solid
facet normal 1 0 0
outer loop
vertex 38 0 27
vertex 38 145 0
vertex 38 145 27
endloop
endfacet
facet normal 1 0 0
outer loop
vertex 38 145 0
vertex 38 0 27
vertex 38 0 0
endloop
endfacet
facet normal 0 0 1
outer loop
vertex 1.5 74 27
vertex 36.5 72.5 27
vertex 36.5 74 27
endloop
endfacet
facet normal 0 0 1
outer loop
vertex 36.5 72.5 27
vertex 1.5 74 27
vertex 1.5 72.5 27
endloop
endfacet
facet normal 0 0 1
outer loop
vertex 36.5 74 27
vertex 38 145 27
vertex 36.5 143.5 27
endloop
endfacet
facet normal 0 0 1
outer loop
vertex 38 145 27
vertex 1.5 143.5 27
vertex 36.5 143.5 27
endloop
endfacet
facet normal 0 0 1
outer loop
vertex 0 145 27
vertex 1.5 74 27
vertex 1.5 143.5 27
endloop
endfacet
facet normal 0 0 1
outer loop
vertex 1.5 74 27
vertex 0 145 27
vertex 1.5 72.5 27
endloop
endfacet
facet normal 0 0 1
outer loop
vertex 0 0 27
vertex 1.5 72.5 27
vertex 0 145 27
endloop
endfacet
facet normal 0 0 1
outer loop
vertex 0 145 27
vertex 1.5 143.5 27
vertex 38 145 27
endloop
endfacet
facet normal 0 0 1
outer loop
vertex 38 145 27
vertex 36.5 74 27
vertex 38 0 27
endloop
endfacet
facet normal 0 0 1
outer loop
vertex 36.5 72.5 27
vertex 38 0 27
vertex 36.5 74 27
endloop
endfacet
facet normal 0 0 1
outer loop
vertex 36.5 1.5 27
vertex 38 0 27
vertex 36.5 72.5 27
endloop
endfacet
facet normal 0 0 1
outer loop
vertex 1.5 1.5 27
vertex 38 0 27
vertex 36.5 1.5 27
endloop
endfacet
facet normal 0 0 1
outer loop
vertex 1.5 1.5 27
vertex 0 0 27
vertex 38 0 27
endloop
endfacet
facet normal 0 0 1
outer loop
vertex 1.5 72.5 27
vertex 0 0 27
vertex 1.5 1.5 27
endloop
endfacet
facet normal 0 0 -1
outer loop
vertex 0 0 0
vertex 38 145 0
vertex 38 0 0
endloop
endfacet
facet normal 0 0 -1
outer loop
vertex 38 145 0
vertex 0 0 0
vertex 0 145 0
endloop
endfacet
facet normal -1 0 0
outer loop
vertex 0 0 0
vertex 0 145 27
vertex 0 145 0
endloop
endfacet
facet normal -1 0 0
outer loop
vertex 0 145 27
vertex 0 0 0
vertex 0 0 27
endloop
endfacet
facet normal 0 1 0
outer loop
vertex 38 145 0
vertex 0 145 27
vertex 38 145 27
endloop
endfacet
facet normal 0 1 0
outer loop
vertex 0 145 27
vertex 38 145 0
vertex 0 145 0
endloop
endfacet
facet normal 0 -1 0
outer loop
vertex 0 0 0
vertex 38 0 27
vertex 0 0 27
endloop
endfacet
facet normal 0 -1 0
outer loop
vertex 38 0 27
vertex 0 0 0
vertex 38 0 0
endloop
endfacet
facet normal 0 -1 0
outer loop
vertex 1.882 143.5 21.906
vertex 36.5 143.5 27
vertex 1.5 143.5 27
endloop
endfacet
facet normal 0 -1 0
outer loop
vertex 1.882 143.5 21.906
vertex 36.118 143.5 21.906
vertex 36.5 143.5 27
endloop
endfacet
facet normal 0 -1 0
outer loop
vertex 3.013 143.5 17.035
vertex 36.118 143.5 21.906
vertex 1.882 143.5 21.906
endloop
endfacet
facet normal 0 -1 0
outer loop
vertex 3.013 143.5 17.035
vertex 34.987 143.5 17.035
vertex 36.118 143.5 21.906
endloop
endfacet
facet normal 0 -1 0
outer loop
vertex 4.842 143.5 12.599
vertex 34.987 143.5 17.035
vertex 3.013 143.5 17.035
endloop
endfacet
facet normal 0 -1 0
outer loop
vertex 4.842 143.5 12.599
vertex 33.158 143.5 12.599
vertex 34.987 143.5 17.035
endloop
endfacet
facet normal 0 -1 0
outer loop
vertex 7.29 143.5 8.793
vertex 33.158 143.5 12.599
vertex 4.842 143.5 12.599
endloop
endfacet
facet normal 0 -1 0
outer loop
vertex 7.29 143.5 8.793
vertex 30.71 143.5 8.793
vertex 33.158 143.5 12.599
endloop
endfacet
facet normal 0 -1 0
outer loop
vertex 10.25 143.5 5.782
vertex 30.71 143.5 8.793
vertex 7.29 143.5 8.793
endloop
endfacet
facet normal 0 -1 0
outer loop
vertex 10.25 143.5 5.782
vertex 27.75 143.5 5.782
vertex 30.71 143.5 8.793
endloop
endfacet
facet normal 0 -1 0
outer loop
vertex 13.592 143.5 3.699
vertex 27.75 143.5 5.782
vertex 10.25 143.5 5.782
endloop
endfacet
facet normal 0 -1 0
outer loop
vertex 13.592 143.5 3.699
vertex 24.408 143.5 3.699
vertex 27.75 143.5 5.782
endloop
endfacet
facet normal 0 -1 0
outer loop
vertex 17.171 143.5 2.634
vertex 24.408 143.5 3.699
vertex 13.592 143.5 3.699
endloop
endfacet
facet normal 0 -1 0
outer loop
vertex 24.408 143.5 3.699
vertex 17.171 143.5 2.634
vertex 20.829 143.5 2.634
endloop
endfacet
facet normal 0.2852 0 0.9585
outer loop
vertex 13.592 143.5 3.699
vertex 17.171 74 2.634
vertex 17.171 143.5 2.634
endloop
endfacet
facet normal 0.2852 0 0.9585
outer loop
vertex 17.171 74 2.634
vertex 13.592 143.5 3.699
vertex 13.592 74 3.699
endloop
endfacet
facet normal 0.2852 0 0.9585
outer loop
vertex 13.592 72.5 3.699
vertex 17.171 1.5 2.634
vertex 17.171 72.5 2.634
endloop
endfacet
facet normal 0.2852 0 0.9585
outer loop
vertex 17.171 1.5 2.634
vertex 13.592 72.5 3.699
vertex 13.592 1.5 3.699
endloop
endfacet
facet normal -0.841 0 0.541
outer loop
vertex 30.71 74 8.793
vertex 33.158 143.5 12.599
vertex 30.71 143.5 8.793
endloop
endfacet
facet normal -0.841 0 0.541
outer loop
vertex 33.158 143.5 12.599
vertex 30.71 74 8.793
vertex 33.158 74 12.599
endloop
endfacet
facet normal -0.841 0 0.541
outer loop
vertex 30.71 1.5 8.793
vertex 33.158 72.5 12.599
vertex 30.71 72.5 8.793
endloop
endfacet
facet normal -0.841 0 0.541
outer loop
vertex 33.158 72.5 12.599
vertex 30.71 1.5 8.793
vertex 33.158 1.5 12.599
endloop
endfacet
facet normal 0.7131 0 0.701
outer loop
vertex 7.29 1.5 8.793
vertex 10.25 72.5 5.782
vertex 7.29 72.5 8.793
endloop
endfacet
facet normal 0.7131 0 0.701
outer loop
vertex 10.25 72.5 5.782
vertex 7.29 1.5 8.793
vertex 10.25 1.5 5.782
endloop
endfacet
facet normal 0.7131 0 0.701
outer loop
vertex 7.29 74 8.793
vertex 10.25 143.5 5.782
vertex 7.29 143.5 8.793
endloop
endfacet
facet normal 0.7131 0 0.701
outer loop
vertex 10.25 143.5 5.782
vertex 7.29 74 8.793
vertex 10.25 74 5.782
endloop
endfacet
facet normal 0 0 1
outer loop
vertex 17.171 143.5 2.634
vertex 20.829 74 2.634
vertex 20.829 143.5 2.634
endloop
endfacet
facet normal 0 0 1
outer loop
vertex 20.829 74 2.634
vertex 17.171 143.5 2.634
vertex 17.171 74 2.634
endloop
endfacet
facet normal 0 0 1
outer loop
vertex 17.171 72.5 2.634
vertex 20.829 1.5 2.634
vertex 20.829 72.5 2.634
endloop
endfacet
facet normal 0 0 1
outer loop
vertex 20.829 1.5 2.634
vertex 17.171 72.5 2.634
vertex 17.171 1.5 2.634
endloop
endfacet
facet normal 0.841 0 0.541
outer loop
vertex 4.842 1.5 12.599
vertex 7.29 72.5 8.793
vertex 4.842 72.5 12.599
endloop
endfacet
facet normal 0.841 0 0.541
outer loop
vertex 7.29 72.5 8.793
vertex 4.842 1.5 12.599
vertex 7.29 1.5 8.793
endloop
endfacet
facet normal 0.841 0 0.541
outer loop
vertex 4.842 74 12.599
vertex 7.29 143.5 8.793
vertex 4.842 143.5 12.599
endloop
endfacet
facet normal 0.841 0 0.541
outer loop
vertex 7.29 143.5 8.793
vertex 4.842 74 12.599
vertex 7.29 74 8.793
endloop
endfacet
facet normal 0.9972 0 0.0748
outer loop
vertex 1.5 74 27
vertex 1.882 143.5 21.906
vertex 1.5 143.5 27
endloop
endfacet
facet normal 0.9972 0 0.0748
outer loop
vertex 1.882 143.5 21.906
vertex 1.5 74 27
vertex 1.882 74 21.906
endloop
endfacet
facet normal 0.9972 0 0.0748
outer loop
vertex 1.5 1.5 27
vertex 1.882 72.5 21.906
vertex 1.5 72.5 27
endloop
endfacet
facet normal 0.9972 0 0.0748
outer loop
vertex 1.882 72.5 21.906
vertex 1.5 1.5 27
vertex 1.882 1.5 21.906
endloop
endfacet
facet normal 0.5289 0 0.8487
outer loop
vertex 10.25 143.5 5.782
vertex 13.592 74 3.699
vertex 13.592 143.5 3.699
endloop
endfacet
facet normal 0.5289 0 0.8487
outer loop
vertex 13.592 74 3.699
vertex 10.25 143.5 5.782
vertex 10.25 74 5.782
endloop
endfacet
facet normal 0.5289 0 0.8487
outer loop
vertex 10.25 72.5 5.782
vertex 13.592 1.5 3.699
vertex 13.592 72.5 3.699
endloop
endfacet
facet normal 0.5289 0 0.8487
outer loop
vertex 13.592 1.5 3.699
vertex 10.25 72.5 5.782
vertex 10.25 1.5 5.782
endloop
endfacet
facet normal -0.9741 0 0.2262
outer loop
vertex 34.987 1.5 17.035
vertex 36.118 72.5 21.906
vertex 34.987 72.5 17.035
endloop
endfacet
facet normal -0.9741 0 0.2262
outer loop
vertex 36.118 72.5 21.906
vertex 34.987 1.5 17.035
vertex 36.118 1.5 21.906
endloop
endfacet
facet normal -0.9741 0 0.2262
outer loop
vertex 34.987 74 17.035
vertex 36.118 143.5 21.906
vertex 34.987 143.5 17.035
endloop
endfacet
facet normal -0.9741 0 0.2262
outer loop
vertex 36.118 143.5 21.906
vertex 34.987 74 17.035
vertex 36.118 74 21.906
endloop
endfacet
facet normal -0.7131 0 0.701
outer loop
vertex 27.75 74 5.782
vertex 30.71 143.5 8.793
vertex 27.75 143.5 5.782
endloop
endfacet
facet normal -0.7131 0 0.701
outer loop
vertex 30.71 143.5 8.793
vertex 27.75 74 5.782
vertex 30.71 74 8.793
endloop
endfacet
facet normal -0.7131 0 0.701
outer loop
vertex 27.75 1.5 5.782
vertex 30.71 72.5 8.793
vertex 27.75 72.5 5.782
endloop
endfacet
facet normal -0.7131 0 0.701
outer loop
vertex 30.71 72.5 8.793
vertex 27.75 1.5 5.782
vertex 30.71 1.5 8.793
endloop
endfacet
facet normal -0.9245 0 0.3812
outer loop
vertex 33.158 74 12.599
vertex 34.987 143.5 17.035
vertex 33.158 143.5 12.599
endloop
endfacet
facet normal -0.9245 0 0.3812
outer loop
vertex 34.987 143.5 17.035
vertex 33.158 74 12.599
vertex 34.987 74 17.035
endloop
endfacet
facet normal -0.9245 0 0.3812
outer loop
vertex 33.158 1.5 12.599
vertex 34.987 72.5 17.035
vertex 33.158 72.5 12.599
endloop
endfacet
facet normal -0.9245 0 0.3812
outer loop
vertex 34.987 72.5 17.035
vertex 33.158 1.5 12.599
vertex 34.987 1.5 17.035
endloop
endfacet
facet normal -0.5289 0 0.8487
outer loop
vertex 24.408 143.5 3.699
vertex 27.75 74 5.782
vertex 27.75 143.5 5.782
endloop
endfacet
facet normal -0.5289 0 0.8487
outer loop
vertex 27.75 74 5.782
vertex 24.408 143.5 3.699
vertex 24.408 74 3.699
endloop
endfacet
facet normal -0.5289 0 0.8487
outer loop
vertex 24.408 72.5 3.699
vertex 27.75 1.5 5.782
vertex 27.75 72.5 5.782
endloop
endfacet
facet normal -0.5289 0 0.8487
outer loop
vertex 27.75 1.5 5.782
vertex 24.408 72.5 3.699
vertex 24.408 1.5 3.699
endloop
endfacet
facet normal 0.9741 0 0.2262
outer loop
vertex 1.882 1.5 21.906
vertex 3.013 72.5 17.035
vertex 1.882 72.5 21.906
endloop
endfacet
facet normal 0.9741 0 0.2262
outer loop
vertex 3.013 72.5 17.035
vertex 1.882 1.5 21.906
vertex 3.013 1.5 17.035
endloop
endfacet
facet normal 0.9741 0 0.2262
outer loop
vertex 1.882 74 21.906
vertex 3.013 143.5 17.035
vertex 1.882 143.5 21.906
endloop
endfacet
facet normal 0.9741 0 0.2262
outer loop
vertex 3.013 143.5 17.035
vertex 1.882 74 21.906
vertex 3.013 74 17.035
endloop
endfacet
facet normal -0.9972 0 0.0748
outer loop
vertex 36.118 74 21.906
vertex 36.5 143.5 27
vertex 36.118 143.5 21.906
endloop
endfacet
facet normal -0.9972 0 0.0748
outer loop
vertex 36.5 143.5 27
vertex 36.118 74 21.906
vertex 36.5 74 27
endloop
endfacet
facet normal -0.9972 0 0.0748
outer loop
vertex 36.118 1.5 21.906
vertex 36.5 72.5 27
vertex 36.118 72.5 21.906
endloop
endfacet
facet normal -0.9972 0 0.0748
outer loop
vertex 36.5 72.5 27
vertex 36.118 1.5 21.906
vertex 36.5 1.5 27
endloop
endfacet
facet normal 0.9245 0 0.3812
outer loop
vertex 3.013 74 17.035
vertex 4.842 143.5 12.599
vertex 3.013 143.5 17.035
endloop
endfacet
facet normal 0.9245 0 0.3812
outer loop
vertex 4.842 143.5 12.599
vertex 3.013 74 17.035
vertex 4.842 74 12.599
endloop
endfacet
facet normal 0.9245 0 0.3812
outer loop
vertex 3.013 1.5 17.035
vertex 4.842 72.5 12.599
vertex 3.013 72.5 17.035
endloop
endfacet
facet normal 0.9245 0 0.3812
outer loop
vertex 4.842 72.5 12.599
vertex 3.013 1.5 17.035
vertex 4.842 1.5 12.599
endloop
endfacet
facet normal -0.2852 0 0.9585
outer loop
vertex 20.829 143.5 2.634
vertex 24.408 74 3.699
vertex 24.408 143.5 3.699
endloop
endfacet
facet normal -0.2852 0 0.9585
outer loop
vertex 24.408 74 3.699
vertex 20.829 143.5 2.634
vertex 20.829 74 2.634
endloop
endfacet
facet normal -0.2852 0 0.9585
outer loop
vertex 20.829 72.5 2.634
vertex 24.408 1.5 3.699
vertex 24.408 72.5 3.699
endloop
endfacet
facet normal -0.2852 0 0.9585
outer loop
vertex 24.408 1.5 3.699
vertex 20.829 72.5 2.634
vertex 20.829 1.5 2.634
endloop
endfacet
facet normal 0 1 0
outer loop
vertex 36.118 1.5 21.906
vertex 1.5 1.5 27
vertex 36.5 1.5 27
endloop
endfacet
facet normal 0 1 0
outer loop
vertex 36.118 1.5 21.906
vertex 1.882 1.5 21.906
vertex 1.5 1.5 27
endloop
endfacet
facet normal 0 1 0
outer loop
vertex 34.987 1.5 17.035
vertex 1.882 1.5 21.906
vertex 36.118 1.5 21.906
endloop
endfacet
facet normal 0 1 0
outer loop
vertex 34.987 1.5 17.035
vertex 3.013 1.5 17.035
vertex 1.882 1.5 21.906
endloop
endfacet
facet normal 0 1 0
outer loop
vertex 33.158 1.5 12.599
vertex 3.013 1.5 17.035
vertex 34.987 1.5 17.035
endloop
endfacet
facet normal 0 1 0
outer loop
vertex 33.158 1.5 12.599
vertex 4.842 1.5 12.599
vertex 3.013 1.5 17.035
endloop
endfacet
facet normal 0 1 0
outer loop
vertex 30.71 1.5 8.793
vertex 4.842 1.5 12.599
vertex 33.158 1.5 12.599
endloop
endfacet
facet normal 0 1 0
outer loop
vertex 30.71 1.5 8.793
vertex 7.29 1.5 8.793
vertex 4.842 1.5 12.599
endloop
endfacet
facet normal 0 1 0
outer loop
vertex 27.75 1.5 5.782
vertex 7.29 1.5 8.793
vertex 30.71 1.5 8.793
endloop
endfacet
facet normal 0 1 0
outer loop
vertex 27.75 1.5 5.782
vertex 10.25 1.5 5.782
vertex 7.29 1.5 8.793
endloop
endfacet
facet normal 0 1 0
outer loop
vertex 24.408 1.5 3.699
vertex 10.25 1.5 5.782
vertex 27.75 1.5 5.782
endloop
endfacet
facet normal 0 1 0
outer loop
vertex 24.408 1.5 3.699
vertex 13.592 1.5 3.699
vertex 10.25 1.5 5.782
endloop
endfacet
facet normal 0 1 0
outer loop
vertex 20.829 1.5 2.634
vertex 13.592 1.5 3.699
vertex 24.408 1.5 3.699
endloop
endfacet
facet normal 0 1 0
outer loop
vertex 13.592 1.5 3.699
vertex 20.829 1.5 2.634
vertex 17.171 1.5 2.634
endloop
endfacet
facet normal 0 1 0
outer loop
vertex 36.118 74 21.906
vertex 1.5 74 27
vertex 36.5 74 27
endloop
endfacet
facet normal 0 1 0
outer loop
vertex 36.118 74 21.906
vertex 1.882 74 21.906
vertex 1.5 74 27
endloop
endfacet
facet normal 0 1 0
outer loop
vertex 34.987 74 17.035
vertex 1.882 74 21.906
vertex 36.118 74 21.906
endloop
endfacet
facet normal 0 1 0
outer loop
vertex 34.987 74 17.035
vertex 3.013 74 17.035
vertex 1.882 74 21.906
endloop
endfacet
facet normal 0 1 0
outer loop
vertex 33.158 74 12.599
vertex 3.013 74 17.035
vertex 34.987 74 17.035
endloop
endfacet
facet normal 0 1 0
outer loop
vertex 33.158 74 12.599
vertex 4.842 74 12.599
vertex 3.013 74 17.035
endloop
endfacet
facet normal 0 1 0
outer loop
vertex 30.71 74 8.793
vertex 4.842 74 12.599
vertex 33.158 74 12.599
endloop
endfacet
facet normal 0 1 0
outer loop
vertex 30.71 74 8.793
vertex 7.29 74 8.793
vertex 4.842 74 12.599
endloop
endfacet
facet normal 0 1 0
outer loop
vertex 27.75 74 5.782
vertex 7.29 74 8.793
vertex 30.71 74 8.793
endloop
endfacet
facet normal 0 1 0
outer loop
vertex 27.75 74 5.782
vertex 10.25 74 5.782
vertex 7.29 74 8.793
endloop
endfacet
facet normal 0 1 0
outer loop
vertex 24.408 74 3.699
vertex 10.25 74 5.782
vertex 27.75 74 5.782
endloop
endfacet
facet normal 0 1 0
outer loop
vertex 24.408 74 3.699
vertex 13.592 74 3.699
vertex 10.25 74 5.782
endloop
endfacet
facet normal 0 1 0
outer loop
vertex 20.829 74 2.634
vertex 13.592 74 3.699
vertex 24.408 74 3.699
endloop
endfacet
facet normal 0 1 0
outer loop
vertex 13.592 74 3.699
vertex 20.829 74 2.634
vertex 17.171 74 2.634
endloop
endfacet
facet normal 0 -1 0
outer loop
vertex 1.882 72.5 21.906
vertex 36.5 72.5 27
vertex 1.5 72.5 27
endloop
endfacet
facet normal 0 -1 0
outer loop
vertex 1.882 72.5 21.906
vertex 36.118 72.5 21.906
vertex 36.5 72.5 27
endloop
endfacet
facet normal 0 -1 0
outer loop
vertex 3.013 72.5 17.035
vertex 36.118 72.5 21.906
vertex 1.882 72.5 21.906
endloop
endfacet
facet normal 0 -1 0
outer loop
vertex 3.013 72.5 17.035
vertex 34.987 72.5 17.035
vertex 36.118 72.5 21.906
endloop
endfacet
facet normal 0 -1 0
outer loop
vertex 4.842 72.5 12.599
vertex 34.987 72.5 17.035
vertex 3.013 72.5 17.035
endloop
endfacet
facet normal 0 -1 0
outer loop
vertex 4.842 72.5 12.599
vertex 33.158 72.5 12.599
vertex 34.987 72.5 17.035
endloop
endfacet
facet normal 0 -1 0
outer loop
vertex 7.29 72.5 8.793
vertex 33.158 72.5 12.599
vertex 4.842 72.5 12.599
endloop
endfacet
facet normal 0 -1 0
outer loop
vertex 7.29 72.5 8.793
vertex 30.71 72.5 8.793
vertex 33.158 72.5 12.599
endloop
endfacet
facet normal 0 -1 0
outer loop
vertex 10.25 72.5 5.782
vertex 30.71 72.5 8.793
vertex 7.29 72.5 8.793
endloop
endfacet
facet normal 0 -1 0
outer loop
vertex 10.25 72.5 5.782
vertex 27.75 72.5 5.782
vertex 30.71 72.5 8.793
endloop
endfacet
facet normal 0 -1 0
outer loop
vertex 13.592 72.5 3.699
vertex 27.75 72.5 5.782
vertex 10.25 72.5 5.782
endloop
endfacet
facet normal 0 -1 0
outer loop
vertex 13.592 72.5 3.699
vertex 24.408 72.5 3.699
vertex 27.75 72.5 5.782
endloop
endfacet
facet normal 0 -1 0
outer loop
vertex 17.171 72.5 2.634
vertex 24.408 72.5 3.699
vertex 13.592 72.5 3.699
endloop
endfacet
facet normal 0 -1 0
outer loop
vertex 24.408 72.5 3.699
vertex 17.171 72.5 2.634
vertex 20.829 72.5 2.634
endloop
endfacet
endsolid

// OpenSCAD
/* [Box Parameters] */


boxWidth = 38;
boxDepth = 145;
boxHeight = 27;
cylinderHeight = 35;
wallThick = 1.5;


difference() {
    cube([boxWidth,boxDepth,boxHeight]);
    color("blue") scale([1,1,1.4]) translate([boxWidth/2, boxDepth-wallThick , boxHeight/1.4]) rotate ([90, 0,0]) cylinder(h=boxDepth-wallThick*2, d=boxWidth-wallThick*2);

}

color("red") translate([0, boxDepth/4*2, 0]) cube([boxWidth,wallThick,boxHeight]);
